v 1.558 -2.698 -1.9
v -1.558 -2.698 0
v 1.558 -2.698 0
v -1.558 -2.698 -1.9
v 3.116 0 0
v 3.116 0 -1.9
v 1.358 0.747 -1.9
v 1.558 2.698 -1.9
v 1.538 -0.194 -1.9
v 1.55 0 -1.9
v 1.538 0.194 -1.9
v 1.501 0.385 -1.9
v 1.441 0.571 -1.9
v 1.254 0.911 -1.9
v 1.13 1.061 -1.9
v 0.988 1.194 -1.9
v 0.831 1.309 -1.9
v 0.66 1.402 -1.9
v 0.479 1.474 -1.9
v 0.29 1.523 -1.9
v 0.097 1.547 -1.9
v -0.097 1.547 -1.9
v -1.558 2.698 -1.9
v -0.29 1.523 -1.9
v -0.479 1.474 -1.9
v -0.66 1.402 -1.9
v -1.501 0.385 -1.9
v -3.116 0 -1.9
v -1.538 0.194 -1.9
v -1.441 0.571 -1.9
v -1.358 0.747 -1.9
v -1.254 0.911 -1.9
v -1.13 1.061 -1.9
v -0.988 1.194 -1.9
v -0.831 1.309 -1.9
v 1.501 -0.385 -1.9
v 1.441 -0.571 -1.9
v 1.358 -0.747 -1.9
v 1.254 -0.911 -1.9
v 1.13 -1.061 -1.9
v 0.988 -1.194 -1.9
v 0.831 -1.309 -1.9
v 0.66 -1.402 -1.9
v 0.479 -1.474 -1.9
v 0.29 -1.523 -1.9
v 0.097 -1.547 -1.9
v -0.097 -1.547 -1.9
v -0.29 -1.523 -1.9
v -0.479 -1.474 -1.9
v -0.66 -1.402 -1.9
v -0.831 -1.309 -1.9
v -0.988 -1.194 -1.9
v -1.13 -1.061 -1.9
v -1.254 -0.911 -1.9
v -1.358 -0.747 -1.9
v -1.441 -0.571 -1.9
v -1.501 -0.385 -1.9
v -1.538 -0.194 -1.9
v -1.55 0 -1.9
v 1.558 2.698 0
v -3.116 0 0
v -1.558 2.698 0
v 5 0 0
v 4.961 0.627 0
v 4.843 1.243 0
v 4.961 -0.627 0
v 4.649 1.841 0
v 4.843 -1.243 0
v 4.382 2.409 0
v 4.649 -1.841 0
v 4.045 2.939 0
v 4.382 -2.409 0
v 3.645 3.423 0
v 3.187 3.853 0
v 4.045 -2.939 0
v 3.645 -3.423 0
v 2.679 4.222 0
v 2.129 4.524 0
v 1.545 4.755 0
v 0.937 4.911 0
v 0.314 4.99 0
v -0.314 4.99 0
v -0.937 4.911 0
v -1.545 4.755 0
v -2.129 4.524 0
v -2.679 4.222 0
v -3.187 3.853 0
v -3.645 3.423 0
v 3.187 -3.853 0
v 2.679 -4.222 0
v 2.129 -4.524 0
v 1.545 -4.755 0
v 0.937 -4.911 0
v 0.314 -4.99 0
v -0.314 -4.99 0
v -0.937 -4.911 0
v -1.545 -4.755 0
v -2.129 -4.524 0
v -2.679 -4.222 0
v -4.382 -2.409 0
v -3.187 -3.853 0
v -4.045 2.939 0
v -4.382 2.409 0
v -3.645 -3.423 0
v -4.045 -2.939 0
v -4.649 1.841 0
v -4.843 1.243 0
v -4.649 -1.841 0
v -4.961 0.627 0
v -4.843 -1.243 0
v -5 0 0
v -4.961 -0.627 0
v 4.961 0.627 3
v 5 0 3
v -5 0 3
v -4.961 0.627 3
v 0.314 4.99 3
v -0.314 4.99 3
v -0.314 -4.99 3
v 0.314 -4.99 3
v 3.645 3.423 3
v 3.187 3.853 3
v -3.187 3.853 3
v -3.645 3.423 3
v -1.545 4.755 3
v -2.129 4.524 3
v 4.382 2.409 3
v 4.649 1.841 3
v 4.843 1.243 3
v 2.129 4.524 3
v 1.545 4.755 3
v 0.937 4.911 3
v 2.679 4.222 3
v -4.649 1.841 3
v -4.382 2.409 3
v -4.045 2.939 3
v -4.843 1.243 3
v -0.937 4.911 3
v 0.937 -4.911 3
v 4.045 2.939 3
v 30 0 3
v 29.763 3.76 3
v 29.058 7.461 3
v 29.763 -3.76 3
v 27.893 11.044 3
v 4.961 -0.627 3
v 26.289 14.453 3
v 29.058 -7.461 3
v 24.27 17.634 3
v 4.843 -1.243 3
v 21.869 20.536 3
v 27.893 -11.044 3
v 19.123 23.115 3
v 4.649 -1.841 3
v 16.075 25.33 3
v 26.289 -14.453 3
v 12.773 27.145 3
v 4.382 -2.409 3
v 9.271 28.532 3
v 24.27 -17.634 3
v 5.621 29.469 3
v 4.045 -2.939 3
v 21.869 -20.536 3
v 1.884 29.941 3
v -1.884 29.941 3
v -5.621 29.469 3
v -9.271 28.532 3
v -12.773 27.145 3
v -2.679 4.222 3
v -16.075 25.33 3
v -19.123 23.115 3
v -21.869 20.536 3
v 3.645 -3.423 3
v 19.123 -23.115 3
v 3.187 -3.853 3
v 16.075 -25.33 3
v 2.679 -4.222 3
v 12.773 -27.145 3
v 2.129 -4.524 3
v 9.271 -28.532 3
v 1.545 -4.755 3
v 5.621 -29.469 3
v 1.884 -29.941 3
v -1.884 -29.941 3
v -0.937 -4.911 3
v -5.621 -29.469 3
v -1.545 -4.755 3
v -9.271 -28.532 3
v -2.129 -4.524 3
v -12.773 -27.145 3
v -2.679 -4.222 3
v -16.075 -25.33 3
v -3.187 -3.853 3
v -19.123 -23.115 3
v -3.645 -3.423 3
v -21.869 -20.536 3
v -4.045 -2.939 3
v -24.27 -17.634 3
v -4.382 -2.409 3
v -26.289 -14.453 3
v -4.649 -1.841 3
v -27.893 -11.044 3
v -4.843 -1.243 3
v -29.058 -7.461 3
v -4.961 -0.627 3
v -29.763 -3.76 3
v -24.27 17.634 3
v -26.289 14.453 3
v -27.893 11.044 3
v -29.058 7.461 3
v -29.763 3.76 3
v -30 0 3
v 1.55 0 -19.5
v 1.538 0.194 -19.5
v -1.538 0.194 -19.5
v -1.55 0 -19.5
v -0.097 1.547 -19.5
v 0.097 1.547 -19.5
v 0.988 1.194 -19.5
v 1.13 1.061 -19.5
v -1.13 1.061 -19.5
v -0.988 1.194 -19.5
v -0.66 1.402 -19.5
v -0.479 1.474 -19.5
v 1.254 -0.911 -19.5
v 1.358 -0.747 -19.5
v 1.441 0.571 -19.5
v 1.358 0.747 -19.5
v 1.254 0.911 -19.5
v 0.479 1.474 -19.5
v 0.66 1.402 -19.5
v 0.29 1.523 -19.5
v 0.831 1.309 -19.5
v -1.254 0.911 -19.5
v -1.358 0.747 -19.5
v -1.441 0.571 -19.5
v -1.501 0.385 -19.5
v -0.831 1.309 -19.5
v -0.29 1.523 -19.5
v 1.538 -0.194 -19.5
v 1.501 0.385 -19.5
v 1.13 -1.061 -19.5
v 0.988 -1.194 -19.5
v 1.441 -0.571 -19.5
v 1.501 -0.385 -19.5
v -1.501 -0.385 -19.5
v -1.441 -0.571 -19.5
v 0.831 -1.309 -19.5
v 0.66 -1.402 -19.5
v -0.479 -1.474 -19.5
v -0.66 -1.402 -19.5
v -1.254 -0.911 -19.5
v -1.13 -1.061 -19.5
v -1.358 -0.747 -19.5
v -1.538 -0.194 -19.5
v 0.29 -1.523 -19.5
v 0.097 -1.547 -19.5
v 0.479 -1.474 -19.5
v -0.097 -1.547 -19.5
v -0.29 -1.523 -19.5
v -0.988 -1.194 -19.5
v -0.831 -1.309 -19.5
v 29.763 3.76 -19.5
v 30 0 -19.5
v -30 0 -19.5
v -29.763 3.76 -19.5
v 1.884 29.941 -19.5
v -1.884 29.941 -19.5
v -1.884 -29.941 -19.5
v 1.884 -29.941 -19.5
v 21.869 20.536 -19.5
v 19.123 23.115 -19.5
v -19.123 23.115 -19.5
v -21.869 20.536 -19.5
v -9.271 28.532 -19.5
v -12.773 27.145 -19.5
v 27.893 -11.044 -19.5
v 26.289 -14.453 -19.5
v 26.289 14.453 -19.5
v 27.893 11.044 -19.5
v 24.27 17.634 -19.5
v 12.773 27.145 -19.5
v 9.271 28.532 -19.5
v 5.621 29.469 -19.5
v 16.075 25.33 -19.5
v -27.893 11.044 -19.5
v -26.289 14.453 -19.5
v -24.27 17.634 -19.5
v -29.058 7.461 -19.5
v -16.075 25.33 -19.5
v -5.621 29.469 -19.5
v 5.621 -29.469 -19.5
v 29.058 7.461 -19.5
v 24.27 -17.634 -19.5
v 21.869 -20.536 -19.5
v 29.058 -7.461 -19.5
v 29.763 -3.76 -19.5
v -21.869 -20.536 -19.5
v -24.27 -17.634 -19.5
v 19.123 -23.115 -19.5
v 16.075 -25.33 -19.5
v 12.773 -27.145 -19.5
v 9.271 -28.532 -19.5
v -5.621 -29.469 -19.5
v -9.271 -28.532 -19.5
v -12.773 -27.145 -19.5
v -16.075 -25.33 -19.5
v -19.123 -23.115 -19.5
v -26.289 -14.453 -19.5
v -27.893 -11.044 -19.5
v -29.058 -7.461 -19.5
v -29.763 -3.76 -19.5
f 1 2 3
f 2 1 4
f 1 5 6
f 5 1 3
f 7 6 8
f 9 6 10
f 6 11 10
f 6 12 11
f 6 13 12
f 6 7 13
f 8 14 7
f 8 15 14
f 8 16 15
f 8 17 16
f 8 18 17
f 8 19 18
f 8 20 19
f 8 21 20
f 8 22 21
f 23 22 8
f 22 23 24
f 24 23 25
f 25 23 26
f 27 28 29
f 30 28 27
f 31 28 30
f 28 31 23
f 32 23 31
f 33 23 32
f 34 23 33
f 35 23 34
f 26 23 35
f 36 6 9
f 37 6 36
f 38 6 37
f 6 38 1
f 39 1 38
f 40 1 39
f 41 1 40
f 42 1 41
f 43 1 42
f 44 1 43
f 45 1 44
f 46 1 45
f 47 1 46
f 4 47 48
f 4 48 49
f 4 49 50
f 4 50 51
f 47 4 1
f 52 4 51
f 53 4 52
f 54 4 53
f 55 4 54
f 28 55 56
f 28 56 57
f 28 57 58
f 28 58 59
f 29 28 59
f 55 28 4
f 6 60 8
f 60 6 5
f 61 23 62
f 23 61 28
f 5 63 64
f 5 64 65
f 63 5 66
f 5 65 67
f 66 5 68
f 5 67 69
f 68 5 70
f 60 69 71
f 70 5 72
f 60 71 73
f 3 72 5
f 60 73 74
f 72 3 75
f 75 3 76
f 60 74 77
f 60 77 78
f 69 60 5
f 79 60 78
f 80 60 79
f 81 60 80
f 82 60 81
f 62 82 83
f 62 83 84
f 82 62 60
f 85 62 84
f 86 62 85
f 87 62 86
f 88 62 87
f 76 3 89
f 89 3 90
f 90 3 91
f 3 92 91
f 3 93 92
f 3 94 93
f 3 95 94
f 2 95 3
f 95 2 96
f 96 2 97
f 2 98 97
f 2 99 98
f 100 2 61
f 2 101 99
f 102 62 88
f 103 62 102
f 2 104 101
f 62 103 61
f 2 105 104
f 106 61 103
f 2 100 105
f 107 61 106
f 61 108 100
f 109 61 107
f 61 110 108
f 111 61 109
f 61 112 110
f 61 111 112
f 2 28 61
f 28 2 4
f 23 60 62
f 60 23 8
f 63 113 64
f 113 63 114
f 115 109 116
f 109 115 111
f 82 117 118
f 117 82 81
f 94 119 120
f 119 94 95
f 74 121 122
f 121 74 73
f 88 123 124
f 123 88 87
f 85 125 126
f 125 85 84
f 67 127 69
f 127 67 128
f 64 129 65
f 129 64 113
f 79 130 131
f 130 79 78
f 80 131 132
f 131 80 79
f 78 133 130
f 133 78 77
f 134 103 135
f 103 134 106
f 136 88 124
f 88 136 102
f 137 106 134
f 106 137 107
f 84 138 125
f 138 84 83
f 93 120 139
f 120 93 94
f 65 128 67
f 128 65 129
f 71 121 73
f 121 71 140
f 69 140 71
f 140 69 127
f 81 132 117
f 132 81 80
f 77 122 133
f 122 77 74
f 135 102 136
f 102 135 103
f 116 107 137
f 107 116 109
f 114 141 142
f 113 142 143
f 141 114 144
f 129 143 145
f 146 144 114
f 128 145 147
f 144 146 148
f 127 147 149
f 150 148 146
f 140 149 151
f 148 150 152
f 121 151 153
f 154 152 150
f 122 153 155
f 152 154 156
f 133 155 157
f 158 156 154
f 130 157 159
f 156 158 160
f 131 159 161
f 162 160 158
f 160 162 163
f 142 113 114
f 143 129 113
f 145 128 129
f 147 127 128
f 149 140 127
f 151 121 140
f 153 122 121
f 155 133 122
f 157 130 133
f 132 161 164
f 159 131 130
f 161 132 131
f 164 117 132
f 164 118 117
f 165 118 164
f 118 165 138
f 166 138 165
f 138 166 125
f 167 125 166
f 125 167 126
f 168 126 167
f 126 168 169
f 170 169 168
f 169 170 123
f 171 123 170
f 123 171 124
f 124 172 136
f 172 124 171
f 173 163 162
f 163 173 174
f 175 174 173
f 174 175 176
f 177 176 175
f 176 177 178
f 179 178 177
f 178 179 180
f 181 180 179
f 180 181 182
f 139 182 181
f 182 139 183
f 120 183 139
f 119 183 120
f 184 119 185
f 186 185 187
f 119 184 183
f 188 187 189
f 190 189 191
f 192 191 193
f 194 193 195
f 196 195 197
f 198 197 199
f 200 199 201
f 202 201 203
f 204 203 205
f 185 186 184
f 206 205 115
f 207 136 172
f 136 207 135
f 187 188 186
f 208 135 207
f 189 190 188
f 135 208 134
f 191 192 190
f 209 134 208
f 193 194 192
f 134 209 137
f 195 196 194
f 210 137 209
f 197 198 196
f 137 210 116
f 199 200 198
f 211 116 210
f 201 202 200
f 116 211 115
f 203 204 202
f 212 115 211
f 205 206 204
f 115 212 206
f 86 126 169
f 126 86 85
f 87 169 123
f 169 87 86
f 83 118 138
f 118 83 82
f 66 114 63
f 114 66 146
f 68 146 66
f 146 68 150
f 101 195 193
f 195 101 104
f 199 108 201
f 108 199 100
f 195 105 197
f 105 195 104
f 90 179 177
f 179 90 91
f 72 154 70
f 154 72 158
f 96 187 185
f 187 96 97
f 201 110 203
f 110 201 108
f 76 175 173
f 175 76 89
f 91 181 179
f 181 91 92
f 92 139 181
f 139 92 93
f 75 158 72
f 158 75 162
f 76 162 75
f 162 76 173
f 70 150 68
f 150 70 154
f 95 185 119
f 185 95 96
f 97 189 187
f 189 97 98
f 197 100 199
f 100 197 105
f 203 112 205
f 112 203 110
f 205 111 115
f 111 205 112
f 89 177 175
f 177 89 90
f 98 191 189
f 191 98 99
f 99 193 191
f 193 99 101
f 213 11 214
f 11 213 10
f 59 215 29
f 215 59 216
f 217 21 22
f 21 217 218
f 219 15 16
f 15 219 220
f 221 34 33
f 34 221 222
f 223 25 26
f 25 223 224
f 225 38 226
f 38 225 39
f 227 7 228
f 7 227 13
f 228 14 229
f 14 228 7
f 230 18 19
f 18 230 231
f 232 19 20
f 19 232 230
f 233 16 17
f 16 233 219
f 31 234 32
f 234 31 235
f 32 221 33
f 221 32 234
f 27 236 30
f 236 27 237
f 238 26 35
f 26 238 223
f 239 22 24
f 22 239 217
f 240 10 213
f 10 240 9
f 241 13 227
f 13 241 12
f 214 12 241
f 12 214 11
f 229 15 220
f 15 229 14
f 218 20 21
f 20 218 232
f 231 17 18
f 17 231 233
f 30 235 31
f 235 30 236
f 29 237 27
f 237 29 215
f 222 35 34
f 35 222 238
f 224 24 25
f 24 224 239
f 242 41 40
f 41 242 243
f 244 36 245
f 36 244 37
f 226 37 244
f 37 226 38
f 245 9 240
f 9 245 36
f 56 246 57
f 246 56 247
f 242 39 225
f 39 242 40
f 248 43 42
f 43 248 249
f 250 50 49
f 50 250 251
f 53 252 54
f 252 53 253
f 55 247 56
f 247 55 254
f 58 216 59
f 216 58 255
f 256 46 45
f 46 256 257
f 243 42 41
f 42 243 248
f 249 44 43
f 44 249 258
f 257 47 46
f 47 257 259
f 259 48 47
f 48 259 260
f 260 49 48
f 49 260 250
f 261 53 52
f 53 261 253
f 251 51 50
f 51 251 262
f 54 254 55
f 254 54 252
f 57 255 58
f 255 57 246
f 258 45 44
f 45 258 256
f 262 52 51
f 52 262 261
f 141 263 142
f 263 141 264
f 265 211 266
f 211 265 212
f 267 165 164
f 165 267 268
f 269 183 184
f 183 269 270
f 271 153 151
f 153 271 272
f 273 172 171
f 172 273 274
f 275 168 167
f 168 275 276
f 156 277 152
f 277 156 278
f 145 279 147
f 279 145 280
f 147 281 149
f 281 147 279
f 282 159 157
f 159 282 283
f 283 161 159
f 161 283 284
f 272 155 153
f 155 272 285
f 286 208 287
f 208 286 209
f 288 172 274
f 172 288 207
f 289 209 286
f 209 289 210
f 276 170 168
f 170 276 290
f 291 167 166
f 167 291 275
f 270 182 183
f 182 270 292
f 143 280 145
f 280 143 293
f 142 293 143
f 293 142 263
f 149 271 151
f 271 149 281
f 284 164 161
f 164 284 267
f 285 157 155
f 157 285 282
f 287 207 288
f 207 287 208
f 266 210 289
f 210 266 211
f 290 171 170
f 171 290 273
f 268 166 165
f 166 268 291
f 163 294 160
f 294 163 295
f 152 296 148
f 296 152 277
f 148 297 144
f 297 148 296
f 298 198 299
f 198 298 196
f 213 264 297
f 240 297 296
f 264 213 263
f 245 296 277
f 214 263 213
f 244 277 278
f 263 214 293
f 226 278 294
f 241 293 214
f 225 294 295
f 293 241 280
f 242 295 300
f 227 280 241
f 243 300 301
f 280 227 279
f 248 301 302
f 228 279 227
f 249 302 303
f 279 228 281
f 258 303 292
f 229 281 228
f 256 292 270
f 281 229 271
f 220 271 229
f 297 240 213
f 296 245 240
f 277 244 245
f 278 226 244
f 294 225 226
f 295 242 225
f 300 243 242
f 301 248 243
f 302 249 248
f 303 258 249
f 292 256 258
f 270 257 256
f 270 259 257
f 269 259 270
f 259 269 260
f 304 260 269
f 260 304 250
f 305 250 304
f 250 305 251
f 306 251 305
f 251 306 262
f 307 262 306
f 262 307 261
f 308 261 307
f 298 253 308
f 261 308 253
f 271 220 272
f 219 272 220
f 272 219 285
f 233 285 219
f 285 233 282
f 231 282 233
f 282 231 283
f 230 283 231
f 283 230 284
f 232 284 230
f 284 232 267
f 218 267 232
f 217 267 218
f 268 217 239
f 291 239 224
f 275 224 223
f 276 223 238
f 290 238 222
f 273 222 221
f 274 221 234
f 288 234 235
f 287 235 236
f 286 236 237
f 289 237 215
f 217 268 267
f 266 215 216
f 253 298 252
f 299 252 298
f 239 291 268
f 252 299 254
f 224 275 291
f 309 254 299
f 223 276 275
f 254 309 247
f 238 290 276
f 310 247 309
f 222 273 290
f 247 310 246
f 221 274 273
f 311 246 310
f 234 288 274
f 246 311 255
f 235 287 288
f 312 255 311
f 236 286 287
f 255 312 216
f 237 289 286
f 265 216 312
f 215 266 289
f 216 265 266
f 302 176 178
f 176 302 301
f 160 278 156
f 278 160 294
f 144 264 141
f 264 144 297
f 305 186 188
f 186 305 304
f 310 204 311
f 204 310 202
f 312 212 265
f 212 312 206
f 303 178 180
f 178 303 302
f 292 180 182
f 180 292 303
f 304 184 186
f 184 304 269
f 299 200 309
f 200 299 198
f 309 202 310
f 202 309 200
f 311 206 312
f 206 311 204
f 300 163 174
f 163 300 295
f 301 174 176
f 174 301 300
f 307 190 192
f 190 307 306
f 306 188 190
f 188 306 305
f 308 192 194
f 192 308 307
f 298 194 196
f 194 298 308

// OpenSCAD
$fn = 50;

difference() {
	union() {
		translate(v = [0, 0, -19.5]) {
			cylinder(h = 22.5, r = 30.0);
		}
	}
	union() {
		translate(v = [0, 0, 0]) {
			rotate(a = [0, 0, 0]) {
				difference() {
					union() {
						translate(v = [0, 0, -1.9]) {
							linear_extrude(height = 1.9) {
								polygon(points = [[3.1158, 0.0], [1.5579000000000005, 2.698361953111554], [-1.5578999999999994, 2.6983619531115544], [-3.1158, 3.815754496783323e-16], [-1.5579000000000014, -2.6983619531115535], [1.557899999999998, -2.6983619531115552]]);
							}
						}
					}
					union();
				}
			}
		}
		#cylinder(h = 3, r = 5.0);
		#translate(v = [0, 0, -100.0]) {
			cylinder(h = 200, r = 1.55);
		}
	}
}
